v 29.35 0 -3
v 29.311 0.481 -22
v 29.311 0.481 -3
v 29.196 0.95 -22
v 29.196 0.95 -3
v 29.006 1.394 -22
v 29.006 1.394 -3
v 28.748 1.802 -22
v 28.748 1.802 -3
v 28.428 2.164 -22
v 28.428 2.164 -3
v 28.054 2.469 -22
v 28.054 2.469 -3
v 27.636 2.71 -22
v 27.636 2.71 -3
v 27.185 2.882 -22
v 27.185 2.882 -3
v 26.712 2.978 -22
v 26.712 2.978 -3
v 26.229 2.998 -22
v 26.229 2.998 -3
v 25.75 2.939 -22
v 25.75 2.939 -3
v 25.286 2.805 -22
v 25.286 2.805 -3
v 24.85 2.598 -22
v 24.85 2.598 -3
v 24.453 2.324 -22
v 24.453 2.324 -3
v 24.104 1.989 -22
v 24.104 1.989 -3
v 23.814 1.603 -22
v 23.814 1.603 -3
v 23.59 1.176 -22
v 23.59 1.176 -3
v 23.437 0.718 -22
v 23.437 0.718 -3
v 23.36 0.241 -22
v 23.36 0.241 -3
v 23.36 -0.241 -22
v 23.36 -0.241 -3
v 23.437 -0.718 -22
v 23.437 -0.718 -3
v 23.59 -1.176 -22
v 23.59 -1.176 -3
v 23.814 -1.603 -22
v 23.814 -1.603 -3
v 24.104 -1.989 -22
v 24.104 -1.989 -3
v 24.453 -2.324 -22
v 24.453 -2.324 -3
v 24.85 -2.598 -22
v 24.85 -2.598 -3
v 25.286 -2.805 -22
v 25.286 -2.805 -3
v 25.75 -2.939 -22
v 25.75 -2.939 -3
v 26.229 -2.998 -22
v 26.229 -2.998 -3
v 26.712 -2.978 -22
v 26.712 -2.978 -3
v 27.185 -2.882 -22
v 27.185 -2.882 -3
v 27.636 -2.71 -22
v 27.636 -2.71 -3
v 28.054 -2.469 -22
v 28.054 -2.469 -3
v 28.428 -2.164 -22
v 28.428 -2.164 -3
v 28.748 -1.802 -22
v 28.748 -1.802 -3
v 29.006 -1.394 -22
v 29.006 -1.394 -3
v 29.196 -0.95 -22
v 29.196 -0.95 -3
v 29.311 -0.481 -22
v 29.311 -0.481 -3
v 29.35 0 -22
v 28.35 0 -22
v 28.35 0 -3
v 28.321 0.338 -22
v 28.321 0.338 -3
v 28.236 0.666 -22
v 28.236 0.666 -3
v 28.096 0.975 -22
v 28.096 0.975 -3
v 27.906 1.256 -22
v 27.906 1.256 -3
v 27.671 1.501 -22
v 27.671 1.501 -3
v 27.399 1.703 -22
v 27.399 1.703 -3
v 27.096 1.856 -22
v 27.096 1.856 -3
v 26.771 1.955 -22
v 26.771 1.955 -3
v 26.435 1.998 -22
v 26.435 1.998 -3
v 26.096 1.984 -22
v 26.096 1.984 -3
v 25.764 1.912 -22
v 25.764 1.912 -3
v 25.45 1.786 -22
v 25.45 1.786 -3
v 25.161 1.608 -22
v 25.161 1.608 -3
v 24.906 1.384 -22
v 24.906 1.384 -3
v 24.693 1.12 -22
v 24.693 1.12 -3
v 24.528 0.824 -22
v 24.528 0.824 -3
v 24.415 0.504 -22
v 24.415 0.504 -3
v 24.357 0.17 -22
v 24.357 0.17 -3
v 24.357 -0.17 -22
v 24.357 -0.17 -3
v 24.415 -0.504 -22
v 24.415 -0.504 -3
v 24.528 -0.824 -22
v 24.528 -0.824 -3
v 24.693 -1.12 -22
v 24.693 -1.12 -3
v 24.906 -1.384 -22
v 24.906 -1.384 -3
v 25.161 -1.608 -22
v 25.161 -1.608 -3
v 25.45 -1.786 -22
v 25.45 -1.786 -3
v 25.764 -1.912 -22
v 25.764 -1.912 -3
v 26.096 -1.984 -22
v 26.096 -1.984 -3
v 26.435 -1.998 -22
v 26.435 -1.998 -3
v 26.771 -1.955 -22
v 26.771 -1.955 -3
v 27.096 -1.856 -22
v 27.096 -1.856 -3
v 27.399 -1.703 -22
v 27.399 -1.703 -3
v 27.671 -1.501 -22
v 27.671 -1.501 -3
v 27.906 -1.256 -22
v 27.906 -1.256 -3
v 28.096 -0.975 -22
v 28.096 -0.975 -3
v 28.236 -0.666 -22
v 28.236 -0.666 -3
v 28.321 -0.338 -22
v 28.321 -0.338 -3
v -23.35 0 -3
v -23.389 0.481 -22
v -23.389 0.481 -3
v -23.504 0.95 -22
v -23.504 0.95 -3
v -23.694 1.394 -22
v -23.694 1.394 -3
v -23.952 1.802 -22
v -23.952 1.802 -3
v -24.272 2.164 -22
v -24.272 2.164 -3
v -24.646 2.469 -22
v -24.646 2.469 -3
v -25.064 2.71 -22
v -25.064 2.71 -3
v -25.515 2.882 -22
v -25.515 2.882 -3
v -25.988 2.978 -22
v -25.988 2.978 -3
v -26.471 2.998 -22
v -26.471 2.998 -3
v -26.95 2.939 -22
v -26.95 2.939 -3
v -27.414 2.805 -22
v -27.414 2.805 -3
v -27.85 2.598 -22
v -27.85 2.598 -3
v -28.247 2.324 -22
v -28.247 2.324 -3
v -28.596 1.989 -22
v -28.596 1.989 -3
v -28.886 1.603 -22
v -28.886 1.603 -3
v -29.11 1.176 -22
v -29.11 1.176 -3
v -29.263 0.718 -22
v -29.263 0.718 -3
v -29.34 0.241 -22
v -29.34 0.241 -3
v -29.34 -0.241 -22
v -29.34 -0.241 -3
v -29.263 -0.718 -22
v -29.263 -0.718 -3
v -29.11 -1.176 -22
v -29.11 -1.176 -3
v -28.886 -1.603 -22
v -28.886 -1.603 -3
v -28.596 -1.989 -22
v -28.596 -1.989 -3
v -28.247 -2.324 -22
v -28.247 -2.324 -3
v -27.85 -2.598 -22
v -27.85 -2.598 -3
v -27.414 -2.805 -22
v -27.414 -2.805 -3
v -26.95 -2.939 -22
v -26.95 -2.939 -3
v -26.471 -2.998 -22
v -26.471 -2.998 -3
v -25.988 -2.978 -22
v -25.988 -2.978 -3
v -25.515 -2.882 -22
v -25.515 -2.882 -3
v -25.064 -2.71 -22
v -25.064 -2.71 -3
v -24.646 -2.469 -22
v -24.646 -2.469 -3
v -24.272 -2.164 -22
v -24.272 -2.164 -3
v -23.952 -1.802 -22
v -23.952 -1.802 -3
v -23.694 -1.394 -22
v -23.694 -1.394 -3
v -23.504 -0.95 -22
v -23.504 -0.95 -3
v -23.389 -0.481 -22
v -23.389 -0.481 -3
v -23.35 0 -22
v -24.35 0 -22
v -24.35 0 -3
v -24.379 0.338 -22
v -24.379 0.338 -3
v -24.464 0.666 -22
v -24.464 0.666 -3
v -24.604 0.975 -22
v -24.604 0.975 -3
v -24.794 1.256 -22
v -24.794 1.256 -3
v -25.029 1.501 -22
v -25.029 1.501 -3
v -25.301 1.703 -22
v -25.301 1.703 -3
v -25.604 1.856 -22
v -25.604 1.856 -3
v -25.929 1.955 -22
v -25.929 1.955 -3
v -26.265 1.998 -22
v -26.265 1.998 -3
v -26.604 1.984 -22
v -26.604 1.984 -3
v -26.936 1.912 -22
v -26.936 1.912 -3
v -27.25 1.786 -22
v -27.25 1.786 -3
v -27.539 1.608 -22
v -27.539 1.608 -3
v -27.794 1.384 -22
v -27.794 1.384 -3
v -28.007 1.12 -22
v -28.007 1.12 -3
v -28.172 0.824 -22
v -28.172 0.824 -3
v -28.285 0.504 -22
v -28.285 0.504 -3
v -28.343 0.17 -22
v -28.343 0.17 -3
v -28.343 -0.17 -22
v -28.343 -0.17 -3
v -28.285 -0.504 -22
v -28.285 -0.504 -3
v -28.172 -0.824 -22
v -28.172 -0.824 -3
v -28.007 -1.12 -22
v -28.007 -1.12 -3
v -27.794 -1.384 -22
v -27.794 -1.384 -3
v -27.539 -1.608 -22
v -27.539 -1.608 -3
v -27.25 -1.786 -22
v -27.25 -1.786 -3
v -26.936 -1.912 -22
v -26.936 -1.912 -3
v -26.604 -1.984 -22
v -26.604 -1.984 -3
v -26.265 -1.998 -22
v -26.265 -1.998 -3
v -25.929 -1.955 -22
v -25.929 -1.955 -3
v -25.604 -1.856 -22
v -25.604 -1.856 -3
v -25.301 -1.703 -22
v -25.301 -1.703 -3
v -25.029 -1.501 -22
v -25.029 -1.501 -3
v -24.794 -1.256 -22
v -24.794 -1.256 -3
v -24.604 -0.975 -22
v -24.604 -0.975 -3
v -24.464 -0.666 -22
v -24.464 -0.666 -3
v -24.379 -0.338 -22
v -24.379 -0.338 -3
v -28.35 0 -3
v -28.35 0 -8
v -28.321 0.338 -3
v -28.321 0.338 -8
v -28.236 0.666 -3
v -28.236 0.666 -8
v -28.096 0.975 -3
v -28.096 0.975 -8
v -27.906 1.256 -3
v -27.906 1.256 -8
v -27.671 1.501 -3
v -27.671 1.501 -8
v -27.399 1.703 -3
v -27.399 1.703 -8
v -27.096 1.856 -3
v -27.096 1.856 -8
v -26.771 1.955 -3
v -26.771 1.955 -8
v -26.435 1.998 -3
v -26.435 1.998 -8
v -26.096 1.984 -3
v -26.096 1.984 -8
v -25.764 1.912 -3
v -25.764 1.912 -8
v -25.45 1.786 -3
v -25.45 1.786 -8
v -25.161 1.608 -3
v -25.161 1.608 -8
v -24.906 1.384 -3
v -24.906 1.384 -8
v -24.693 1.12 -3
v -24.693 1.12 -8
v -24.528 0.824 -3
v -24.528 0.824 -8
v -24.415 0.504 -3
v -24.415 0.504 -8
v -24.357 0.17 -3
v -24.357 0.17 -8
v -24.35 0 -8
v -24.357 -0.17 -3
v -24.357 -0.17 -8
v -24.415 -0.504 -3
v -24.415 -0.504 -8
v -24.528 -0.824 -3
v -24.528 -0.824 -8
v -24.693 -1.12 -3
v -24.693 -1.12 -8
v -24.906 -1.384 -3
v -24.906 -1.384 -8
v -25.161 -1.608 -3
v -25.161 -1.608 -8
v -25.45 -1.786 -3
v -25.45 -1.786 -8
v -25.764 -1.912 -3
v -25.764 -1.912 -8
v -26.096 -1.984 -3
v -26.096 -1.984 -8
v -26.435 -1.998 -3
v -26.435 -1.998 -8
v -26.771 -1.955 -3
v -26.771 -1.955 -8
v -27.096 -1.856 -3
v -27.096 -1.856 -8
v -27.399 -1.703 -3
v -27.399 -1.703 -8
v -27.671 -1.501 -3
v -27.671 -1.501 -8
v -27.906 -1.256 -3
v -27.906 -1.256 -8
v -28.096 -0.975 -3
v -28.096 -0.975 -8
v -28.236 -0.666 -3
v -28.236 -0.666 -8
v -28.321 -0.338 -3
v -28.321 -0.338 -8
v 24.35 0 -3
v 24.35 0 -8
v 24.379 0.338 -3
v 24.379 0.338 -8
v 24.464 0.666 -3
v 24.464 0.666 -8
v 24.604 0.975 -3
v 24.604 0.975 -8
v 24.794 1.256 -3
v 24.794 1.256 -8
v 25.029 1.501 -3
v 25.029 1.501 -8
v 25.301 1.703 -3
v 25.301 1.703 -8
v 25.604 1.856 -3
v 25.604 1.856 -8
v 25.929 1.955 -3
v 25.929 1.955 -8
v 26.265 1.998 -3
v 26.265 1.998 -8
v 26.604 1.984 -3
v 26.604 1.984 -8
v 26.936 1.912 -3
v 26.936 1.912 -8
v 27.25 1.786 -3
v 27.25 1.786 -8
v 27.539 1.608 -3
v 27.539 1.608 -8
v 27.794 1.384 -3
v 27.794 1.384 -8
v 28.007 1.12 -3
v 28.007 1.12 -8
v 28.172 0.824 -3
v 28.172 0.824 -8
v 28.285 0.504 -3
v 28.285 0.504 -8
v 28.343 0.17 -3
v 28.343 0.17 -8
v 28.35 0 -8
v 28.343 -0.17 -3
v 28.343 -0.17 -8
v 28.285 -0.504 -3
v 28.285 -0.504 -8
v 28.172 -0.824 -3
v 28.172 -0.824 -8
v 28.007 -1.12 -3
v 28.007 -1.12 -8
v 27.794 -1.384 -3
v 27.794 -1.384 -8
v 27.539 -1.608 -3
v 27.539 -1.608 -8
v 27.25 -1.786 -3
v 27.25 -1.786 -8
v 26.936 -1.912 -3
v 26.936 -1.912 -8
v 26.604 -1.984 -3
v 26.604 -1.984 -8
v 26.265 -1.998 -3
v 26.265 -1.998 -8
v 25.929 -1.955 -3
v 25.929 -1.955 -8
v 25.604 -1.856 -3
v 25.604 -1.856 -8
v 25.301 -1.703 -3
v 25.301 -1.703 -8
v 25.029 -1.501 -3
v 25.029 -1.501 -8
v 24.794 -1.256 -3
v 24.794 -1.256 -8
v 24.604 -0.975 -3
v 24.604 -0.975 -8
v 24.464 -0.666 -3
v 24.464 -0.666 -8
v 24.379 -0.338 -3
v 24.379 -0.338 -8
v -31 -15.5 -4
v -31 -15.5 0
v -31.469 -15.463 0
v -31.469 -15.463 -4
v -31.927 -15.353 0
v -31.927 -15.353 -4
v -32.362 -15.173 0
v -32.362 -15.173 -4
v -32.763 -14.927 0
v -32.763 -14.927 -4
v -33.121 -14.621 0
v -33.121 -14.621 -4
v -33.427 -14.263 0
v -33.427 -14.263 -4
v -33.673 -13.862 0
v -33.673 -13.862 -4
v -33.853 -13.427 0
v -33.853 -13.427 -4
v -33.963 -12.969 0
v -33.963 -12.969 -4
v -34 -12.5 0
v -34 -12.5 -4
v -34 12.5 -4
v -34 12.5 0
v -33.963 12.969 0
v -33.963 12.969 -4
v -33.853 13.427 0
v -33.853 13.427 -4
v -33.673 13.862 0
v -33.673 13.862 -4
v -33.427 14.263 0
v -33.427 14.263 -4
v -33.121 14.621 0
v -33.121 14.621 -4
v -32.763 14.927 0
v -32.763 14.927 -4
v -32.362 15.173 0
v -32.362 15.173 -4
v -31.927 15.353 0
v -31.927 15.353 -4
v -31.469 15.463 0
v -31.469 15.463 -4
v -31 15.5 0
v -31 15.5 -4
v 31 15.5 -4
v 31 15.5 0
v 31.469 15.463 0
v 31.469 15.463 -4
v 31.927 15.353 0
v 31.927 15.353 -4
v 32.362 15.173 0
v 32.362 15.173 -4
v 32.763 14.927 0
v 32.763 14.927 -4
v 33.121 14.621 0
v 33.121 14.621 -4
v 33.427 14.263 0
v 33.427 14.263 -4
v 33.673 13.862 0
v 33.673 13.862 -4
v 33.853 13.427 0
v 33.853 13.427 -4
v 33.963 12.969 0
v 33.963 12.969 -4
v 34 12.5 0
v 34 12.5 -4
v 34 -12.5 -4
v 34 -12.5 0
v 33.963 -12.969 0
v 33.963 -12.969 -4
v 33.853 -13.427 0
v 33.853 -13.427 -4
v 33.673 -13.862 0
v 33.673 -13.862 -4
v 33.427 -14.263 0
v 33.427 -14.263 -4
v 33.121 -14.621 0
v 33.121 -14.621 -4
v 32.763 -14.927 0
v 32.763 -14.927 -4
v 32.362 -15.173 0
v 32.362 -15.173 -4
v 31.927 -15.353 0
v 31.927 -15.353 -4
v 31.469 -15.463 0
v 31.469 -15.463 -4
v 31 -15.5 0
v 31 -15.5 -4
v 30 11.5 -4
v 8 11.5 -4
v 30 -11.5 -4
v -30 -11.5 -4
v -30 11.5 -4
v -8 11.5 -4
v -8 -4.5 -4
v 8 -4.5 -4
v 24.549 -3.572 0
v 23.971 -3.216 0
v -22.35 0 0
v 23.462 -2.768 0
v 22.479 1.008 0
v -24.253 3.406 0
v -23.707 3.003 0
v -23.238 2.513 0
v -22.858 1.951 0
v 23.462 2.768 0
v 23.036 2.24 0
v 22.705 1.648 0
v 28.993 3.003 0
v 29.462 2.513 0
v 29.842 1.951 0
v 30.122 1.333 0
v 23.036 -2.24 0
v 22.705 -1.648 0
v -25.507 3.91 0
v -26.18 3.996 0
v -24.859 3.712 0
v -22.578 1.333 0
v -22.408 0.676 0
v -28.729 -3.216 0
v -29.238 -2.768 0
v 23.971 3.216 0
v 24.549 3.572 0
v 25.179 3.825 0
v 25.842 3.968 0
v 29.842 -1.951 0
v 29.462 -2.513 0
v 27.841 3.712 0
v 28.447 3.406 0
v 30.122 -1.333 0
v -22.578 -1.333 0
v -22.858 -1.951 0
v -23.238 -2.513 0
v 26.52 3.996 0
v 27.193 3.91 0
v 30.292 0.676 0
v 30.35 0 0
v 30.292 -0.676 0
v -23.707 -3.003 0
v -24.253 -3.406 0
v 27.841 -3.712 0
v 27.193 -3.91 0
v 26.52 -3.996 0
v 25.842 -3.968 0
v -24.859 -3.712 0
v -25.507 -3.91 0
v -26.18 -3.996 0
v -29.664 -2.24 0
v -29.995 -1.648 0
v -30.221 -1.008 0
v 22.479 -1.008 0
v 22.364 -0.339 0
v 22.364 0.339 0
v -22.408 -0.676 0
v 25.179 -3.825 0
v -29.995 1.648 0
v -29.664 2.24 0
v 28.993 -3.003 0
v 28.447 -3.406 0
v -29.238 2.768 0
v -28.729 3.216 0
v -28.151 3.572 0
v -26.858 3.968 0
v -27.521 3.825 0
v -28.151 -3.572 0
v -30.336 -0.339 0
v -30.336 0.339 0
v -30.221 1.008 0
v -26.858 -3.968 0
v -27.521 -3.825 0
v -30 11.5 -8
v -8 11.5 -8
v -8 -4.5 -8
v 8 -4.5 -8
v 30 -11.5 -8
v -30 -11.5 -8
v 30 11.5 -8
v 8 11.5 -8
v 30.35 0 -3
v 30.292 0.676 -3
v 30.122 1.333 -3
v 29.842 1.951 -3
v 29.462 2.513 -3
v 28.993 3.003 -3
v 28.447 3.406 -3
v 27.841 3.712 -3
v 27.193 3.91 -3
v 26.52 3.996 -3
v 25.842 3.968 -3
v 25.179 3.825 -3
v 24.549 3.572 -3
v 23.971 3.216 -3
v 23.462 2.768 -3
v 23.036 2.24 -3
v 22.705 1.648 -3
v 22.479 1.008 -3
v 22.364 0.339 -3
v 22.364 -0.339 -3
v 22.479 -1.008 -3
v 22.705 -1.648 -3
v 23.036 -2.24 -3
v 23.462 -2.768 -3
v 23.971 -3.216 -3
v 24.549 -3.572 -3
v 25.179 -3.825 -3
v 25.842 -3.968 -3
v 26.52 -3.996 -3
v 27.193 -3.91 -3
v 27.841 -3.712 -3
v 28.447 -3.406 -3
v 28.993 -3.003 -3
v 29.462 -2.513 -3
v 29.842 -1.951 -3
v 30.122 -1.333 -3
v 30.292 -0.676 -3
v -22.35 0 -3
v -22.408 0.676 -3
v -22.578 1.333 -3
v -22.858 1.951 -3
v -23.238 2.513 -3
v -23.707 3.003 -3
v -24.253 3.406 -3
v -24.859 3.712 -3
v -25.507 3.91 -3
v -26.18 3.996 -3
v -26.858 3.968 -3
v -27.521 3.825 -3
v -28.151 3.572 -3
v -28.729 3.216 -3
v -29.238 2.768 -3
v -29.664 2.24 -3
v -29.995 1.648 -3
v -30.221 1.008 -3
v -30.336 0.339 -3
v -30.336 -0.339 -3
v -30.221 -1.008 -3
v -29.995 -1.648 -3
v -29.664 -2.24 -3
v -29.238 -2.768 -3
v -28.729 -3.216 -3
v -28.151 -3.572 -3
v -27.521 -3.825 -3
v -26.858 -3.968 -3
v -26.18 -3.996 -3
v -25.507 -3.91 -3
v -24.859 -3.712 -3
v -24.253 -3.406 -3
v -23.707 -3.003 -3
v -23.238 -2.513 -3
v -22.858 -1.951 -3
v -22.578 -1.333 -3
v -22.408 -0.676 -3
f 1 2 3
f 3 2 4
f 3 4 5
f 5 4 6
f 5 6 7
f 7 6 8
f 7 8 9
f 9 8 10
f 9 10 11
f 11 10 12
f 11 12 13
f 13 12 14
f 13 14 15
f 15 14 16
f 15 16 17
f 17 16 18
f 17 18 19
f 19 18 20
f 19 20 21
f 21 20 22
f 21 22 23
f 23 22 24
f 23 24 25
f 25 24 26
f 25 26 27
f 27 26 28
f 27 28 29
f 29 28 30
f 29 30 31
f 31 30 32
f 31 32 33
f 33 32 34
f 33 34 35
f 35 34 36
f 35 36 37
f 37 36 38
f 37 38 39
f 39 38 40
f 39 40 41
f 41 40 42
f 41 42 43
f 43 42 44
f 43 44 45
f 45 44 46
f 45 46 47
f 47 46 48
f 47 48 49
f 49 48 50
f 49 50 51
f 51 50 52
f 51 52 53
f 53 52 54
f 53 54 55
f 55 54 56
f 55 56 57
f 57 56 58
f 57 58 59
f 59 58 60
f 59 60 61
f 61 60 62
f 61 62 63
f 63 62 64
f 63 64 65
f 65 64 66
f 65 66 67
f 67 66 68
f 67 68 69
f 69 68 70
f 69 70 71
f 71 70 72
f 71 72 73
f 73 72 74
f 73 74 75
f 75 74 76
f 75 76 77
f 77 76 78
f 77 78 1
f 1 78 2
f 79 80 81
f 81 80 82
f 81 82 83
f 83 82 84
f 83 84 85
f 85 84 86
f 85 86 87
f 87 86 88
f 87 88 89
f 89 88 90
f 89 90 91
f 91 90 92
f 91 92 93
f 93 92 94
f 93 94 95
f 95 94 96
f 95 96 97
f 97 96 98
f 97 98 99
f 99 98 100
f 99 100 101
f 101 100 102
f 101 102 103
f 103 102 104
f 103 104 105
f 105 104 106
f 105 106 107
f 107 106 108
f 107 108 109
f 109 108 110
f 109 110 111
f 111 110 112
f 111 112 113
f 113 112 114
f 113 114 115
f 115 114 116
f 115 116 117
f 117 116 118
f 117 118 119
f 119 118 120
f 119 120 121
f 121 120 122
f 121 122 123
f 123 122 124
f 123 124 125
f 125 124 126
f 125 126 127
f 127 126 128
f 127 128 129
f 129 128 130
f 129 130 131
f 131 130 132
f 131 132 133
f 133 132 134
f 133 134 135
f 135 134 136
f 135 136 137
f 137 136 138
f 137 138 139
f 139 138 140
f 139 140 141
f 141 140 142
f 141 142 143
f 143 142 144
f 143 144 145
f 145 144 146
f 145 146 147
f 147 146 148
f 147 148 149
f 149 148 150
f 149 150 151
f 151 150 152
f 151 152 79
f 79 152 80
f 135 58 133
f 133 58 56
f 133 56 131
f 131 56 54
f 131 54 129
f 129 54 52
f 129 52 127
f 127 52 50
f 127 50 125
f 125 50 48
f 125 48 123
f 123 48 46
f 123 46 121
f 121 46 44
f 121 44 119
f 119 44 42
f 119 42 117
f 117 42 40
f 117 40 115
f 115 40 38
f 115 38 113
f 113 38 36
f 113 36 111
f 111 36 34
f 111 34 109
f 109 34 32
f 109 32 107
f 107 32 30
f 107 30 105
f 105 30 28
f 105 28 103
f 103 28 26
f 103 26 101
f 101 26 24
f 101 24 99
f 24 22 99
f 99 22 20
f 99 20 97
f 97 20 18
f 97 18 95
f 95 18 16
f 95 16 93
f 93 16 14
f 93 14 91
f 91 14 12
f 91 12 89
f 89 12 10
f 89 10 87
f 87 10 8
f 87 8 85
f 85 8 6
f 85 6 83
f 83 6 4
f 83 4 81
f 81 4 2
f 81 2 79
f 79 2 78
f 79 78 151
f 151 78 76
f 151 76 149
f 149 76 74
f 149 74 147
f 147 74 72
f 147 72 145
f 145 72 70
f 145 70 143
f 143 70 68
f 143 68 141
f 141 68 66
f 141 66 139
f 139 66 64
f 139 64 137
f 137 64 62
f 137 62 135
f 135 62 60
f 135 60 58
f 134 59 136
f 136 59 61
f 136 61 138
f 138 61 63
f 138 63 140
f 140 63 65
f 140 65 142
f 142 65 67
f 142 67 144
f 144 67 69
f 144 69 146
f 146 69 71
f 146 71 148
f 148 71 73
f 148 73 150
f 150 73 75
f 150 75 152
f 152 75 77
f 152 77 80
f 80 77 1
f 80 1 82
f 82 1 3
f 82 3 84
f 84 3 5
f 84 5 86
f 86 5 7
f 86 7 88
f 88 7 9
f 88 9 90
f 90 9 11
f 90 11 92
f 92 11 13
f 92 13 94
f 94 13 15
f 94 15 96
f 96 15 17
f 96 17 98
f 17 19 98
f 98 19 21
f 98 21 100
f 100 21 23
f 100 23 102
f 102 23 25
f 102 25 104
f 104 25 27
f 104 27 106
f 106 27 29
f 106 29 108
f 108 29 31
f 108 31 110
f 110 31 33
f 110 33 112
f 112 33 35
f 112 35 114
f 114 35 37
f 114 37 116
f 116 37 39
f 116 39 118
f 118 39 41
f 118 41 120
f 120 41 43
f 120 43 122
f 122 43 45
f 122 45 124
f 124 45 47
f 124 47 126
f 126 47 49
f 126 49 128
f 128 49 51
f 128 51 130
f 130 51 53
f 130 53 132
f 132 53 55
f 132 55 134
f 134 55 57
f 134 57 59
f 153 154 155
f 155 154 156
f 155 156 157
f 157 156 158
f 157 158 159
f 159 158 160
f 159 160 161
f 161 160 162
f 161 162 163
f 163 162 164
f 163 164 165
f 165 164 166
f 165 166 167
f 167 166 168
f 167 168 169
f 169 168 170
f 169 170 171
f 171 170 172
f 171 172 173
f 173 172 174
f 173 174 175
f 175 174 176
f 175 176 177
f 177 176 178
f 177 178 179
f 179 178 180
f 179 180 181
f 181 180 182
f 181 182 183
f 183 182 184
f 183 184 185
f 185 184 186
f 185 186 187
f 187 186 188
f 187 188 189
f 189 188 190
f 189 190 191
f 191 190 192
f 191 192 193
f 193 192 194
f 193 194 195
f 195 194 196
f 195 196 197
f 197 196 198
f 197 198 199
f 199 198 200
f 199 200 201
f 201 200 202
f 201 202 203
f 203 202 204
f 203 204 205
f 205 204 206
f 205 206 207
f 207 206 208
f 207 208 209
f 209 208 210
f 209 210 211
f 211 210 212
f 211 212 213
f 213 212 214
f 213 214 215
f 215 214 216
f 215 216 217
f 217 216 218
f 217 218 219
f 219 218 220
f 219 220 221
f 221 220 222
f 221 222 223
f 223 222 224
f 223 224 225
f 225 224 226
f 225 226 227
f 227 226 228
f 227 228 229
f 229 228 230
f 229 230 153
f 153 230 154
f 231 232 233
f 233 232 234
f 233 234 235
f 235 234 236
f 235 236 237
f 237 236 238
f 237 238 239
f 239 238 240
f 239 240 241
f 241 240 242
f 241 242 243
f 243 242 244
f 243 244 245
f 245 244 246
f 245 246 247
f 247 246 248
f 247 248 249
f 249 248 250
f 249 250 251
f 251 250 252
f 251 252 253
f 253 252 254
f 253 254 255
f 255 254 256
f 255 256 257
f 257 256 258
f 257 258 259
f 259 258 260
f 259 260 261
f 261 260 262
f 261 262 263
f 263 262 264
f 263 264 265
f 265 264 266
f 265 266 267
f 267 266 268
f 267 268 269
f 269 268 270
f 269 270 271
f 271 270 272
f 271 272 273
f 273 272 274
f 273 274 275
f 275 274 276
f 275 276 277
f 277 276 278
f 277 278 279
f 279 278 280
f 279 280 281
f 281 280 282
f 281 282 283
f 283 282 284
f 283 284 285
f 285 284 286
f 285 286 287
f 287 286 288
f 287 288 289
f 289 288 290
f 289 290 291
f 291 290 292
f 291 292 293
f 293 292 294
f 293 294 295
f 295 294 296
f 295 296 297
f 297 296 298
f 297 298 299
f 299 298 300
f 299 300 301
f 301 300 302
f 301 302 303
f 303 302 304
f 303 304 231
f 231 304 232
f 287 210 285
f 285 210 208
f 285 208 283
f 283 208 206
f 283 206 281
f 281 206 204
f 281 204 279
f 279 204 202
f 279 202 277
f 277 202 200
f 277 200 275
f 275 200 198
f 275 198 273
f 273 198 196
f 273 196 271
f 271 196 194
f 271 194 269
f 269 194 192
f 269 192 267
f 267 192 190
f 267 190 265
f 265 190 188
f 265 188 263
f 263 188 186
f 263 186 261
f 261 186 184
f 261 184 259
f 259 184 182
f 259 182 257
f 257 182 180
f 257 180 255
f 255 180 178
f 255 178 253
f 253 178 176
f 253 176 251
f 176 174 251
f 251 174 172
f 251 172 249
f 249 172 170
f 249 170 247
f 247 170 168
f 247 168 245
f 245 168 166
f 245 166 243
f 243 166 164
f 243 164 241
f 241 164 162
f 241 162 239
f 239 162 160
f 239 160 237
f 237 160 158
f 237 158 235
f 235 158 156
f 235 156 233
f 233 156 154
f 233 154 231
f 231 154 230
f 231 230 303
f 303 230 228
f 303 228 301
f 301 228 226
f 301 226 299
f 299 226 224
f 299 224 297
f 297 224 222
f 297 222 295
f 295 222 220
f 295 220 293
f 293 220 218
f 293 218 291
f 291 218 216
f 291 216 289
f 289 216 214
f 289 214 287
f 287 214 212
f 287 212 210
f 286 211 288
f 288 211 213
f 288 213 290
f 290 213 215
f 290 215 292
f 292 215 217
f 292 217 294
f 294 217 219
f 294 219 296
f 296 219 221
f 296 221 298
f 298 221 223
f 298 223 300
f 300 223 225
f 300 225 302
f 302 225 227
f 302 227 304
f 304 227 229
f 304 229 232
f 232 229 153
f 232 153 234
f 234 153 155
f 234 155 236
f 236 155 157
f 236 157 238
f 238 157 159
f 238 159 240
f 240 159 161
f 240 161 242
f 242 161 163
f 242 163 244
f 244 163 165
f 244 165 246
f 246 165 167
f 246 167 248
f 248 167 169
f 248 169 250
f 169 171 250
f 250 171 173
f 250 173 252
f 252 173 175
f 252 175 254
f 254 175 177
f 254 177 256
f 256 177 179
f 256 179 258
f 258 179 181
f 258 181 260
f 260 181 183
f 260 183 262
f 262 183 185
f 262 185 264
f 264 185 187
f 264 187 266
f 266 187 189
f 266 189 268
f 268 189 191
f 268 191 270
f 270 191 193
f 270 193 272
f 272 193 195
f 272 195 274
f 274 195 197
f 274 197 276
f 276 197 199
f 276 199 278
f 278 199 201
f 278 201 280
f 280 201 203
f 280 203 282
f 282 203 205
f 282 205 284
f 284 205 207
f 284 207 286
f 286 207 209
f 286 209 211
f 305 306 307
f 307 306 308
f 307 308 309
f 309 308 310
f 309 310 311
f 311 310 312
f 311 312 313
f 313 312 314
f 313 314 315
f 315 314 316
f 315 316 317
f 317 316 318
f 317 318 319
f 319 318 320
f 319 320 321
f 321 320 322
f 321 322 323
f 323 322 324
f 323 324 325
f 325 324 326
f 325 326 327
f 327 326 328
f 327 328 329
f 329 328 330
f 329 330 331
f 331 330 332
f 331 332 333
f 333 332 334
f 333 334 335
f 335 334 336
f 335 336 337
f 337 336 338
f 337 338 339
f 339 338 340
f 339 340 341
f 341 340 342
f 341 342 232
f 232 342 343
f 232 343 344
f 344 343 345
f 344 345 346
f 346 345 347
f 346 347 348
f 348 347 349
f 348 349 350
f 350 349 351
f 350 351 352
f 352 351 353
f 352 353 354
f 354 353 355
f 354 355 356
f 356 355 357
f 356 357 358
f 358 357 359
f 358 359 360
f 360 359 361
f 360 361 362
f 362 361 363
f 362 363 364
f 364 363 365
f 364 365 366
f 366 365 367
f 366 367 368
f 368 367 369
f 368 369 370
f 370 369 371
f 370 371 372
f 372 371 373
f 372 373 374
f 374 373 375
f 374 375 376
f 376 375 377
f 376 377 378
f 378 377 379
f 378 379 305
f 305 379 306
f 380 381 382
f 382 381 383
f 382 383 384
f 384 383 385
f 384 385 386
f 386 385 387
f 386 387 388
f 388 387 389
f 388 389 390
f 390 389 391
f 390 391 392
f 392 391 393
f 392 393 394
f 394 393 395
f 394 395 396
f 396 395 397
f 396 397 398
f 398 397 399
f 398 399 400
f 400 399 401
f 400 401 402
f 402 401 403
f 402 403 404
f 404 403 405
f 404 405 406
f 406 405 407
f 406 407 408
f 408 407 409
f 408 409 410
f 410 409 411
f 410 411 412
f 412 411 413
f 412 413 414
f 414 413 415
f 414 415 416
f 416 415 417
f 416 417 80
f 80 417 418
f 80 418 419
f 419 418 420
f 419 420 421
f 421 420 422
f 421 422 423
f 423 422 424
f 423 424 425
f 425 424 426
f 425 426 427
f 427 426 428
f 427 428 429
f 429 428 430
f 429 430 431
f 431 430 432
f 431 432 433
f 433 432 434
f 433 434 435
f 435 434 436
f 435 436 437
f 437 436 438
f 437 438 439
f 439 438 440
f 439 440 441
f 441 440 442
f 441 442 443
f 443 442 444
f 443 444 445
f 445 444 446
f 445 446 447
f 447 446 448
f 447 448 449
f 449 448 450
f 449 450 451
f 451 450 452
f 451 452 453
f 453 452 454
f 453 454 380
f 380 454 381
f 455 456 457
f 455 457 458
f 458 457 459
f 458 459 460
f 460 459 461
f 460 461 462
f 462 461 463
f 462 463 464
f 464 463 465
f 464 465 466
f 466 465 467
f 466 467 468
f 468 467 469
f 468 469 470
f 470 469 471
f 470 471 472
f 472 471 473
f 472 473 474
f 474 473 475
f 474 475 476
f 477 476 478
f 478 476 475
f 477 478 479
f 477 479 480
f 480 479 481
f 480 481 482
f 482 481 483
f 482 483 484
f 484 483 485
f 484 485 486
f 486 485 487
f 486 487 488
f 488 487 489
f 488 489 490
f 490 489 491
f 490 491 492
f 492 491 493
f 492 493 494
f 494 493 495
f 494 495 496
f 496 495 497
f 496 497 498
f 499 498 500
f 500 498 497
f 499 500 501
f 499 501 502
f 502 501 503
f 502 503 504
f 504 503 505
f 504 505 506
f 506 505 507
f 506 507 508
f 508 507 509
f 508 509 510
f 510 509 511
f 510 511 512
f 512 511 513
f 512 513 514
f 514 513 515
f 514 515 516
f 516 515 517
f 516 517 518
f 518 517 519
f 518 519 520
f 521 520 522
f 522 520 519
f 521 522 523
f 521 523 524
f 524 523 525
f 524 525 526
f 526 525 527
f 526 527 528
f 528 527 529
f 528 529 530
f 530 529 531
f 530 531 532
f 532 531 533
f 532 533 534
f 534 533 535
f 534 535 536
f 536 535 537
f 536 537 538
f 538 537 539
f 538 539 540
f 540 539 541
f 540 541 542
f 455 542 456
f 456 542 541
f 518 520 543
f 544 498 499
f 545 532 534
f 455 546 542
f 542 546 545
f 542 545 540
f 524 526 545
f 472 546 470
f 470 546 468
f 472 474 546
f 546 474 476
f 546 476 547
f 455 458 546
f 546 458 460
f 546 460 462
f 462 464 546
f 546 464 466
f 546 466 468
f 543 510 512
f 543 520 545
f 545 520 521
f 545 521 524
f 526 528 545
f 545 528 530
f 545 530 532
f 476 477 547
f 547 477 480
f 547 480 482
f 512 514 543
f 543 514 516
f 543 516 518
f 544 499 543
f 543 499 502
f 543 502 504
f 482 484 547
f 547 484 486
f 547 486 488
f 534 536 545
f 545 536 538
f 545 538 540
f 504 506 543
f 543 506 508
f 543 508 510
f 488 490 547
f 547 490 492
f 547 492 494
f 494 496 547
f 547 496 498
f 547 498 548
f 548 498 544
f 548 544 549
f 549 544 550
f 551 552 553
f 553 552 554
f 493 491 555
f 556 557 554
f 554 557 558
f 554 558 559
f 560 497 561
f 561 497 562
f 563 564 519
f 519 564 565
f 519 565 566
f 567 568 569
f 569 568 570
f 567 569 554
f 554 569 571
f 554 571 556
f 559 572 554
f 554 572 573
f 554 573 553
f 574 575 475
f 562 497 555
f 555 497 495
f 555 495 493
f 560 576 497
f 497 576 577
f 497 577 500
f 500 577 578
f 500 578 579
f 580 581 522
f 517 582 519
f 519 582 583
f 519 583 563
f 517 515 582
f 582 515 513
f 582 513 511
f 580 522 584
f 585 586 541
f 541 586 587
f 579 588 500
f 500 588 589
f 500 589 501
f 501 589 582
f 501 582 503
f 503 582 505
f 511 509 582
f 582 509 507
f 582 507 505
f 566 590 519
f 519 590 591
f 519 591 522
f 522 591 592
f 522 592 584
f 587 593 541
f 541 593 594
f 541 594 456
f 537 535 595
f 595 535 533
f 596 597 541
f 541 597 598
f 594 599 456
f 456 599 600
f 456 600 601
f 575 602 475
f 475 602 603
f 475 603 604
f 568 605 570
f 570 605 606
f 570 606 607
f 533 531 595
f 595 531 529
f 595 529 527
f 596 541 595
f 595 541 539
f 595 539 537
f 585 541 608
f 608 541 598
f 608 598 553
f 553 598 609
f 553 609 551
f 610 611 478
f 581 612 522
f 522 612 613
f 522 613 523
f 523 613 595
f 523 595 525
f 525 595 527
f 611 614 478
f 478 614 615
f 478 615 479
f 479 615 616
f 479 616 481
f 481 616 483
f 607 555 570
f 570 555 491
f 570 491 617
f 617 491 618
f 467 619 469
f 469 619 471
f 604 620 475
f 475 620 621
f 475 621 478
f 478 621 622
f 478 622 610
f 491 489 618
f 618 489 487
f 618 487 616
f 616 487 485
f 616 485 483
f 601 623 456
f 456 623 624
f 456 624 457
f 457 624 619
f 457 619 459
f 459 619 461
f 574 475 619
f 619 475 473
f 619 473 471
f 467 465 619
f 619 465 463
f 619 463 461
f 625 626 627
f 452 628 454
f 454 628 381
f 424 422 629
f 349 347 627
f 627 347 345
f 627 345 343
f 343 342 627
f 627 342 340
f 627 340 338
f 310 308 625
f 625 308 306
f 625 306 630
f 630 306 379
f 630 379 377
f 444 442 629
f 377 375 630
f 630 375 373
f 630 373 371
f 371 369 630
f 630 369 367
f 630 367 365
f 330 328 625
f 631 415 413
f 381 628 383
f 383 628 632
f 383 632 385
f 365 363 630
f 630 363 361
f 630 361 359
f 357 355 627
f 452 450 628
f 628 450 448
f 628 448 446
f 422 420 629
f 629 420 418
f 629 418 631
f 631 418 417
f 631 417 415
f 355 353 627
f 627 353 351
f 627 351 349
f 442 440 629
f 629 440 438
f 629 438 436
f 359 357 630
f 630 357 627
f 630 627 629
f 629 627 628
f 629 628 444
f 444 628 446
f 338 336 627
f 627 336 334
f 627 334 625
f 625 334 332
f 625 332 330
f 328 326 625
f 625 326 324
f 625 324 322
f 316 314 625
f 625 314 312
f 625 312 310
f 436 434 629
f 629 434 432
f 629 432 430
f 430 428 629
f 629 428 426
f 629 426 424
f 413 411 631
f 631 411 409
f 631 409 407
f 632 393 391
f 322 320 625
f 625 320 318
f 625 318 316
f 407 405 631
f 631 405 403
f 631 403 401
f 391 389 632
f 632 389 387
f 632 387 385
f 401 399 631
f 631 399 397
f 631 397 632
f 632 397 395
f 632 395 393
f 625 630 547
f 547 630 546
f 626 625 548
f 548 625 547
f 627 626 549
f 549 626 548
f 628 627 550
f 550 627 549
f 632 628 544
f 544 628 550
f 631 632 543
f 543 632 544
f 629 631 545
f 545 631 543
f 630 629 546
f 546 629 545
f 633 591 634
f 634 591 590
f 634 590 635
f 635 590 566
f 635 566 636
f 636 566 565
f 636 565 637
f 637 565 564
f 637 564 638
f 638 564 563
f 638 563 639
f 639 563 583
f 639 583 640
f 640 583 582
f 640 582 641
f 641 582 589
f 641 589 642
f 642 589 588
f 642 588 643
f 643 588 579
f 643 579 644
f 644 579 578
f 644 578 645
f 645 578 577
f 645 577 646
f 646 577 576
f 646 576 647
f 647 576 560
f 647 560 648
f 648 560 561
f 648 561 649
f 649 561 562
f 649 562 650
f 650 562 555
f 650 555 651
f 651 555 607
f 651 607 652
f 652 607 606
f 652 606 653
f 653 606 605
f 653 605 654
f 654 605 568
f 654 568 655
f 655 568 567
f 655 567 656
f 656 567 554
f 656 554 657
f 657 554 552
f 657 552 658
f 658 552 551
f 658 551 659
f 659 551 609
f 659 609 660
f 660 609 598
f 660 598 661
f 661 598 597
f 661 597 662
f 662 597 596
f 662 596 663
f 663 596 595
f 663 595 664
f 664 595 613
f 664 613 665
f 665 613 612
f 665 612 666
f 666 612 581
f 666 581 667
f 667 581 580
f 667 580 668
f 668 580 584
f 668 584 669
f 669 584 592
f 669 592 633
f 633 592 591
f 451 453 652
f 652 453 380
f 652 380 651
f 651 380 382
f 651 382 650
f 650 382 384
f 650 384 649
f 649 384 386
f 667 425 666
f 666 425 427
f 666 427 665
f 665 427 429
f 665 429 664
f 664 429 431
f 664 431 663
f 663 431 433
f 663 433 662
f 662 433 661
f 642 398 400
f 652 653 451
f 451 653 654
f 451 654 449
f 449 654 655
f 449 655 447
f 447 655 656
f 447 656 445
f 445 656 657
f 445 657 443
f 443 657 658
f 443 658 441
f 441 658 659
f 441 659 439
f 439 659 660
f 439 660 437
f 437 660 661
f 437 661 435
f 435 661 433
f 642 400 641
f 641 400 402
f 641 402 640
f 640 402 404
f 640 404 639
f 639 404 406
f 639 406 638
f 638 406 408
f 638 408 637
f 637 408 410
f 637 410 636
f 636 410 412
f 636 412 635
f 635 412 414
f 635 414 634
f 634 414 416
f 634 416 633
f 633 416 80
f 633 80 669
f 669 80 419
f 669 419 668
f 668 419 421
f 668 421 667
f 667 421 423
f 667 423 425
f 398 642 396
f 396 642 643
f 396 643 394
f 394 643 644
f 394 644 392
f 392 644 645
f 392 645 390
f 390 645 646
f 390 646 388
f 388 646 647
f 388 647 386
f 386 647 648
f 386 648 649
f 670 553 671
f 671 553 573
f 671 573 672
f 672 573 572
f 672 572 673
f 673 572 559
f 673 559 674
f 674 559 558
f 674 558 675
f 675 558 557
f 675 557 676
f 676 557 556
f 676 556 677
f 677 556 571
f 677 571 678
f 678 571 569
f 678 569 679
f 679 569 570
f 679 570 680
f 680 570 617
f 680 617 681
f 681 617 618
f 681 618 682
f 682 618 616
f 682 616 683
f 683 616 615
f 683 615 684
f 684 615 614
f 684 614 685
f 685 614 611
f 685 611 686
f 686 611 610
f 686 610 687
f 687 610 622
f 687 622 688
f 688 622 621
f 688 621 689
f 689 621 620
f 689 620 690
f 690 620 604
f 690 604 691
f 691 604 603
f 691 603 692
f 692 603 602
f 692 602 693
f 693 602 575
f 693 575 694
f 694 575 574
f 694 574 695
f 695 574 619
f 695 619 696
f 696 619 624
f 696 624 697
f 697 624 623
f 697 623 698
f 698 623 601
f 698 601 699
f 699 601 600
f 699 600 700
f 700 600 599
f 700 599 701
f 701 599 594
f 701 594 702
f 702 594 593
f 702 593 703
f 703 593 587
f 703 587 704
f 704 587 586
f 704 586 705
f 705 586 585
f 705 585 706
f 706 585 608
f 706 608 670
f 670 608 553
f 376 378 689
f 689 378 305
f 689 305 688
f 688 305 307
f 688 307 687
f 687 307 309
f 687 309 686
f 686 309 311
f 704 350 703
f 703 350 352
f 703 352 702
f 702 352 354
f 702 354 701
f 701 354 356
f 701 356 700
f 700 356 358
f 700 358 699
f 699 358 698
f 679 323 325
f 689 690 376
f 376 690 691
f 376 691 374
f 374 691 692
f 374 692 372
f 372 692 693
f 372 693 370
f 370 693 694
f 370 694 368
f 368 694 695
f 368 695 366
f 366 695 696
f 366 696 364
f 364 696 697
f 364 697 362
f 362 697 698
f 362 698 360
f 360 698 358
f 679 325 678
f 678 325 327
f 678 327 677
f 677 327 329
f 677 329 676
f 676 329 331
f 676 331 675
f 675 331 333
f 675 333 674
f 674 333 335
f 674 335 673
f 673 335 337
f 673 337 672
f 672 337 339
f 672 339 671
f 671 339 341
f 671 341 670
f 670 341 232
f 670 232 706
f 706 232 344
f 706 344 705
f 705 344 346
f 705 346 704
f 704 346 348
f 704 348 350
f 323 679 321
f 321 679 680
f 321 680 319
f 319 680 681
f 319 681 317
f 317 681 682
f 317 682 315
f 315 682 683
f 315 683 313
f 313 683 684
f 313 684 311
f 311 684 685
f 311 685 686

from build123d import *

# Parameters (mm, degrees)
CROQUIS3_R                 = 3
CROQUIS3_R_2               = 2
SALIENTE_EXTRUIR2_DEPTH    = 22
SALIENTE_EXTRUIR2_2_DEPTH  = 22
CROQUIS4_W                 = 62
CROQUIS4_H                 = 25
SALIENTE_EXTRUIR3_DEPTH    = 4
CROQUIS6_W                 = 62
CROQUIS6_H                 = 25
SALIENTE_EXTRUIR4_DEPTH    = 8
CORTAR_EXTRUIR1_DEPTH      = 26
CORTAR_EXTRUIR1_DEPTH_BACK = 29
CROQUIS7_R                 = 2
CROQUIS9_W                 = 62
CROQUIS9_H                 = 25
CORTAR_EXTRUIR2_DEPTH      = 4
CROQUIS10_R                = 4
CROQUIS10_R_2              = 2
CORTAR_EXTRUIR3_DEPTH      = 3


with BuildPart() as part:
    # Croquis3 → Saliente-Extruir2 (new body)
    with BuildSketch(Plane.XY):
        with Locations((26.35, 0)):
            Circle(CROQUIS3_R)
        with Locations((26.35, 0)):
            Circle(CROQUIS3_R_2, mode=Mode.SUBTRACT)
    extrude(amount=-SALIENTE_EXTRUIR2_DEPTH)


with BuildPart() as body_2:
    # Croquis3 → Saliente-Extruir2 2 (new body)
    with BuildSketch(Plane.XY):
        with Locations((-26.35, 0)):
            Circle(CROQUIS3_R)
        with Locations((-26.35, 0)):
            Circle(CROQUIS3_R_2, mode=Mode.SUBTRACT)
    extrude(amount=-SALIENTE_EXTRUIR2_2_DEPTH)


with BuildPart() as body_3:
    # Croquis4 → Saliente-Extruir3 (new body)
    with BuildSketch(Plane.XY):
        with BuildLine():
            Line((-31, 15.5), (31, 15.5))
            ThreePointArc((31, 15.5), (33.121320344, 14.621320344), (34, 12.5))
            Line((34, 12.5), (34, -12.5))
            ThreePointArc((34, -12.5), (33.121320344, -14.621320344), (31, -15.5))
            Line((31, -15.5), (-31, -15.5))
            ThreePointArc((-31, -15.5), (-33.121320344, -14.621320344), (-34, -12.5))
            Line((-34, -12.5), (-34, 12.5))
            ThreePointArc((-34, 12.5), (-33.121320344, 14.621320344), (-31, 15.5))
        make_face()
        Rectangle(CROQUIS4_W, CROQUIS4_H, mode=Mode.SUBTRACT)
    extrude(amount=-SALIENTE_EXTRUIR3_DEPTH)

    # Croquis6 → Saliente-Extruir4 (add)
    with BuildSketch(Plane.XY):
        Rectangle(CROQUIS6_W, CROQUIS6_H)
    extrude(amount=-SALIENTE_EXTRUIR4_DEPTH)

    # Croquis7 → Cortar-Extruir1 (cut, two sides: drawn at the far end of the back side and taken through both)
    with BuildSketch(Plane.XY.offset(-CORTAR_EXTRUIR1_DEPTH_BACK)):
        with Locations(Location((-26.35, 0, 0), (0, 0, 180))):
            Circle(CROQUIS7_R)
        with Locations(Location((26.35, 0, 0), (0, 0, 180))):
            Circle(CROQUIS7_R)
    extrude(amount=CORTAR_EXTRUIR1_DEPTH + CORTAR_EXTRUIR1_DEPTH_BACK, mode=Mode.SUBTRACT)

    # Croquis9 → Cortar-Extruir2 (cut)
    with BuildSketch(Plane.XY.offset(-4)):
        Rectangle(CROQUIS9_W, CROQUIS9_H)
        Polygon((-8, 11.5), (-8, -4.5), (8, -4.5), (8, 11.5), (30, 11.5), (30, -11.5), (-30, -11.5), (-30, 11.5), align=None, mode=Mode.SUBTRACT)
    extrude(amount=-CORTAR_EXTRUIR2_DEPTH, mode=Mode.SUBTRACT)


with BuildPart() as cortar_extruir3_tool:
    # Croquis10 → Cortar-Extruir3 (new body)
    # profile 1 of 2: a face of its own
    with BuildSketch(Plane.XY):
        with Locations((-26.35, 0)):
            Circle(CROQUIS10_R)
        with Locations(Location((-26.35, 0, 0), (0, 0, 180))):
            Circle(CROQUIS10_R_2, mode=Mode.SUBTRACT)
    # profile 2 of 2: a face of its own
    with BuildSketch(Plane.XY):
        with Locations((26.35, 0)):
            Circle(CROQUIS10_R)
        with Locations(Location((26.35, 0, 0), (0, 0, 180))):
            Circle(CROQUIS10_R_2, mode=Mode.SUBTRACT)
    extrude(amount=-CORTAR_EXTRUIR3_DEPTH)


with BuildPart() as part_1:
    add(part.part)

    # Cortar-Extruir3: cut by cortar_extruir3_tool
    add(cortar_extruir3_tool.part, mode=Mode.SUBTRACT)


with BuildPart() as body_2_1:
    add(body_2.part)

    # Cortar-Extruir3: cut by cortar_extruir3_tool
    add(cortar_extruir3_tool.part, mode=Mode.SUBTRACT)


with BuildPart() as body_3_1:
    add(body_3.part)

    # Cortar-Extruir3: cut by cortar_extruir3_tool
    add(cortar_extruir3_tool.part, mode=Mode.SUBTRACT)


solid = Compound([part_1.part, body_2_1.part, body_3_1.part])
